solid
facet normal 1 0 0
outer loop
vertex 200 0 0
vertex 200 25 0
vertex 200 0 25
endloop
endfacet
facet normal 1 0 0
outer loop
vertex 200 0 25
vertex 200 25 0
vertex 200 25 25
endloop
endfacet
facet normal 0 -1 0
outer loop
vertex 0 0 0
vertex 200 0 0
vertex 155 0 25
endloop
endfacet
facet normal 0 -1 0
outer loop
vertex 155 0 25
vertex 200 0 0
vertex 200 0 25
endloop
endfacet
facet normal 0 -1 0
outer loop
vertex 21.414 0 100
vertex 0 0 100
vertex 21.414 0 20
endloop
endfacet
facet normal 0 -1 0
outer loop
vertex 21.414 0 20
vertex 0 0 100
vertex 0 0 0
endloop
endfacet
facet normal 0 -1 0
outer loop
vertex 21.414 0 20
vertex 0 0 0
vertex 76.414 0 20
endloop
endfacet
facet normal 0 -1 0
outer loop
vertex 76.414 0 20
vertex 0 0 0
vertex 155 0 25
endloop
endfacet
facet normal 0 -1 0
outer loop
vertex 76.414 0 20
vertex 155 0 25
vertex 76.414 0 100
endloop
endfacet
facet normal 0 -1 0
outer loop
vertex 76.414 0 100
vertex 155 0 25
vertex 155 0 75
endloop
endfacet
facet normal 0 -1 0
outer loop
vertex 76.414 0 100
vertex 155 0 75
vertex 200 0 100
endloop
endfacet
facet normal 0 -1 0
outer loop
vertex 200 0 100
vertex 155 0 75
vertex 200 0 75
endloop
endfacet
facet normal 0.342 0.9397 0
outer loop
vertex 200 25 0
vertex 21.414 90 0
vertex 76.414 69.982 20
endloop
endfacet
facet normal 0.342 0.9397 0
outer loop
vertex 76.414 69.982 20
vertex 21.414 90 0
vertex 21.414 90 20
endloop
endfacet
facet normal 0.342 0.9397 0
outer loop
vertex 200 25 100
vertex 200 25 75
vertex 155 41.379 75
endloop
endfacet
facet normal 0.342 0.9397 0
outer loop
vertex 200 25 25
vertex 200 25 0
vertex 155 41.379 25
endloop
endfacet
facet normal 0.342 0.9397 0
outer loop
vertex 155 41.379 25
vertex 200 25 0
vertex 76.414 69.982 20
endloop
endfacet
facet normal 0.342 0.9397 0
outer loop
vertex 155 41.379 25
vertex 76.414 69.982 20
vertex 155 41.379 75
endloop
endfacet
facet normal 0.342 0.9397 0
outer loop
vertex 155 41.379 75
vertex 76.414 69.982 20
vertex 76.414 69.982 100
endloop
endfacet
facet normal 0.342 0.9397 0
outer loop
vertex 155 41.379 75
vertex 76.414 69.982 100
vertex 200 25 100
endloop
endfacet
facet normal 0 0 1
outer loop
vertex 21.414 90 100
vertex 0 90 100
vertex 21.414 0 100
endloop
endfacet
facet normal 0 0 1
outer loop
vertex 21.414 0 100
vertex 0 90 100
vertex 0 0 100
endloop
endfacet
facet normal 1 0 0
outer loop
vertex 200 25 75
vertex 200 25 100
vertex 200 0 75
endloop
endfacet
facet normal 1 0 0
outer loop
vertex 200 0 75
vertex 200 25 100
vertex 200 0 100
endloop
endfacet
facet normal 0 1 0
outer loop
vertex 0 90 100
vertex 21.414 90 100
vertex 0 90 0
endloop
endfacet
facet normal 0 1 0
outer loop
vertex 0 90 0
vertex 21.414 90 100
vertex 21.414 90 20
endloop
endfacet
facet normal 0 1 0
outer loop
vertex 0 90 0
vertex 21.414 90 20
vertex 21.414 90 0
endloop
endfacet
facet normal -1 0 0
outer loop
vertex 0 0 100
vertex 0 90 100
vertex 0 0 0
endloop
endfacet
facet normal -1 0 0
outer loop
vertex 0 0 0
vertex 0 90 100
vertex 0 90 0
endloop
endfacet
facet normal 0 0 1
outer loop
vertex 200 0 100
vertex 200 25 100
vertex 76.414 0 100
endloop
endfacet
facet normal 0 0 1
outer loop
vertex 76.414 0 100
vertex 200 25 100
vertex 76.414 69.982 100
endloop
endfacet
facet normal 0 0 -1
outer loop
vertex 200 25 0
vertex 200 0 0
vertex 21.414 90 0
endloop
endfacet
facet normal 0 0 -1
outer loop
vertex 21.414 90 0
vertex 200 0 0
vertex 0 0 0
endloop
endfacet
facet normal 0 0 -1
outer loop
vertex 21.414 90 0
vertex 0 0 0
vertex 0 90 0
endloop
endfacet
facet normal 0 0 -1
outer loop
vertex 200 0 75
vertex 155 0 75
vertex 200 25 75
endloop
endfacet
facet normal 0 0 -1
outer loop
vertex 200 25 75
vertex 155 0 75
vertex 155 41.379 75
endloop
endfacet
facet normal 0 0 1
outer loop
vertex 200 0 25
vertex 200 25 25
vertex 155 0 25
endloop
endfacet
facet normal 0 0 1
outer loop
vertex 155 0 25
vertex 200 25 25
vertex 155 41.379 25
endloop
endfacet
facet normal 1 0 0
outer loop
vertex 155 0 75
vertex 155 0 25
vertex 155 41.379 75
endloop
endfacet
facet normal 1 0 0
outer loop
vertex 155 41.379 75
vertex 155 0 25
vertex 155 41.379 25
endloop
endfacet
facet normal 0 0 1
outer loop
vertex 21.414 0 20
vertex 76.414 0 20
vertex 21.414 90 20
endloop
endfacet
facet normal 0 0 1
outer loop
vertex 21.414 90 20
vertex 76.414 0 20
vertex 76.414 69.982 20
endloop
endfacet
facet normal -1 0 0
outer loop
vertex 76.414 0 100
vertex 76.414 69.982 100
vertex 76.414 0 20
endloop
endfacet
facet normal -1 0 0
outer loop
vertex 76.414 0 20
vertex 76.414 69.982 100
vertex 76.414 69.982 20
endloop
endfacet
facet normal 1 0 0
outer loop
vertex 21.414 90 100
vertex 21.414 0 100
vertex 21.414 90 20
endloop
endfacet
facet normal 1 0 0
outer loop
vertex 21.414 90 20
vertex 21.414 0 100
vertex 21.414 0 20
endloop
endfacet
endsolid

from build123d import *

# Parameters (mm, degrees)
SKETCH1_W           = 21.413967735
SKETCH1_H           = 90
BOSS_EXTRUDE1_DEPTH = 100
CUT_EXTRUDE1_REACH  = 243.039
SKETCH2_W           = 55
SKETCH2_H           = 80
SKETCH2_W_2         = 45
SKETCH2_H_2         = 25


with BuildPart() as part:
    # Sketch1 → Boss-Extrude1 (new body)
    with BuildSketch(Plane.XY):
        with Locations((10.706983867, 45)):
            Rectangle(SKETCH1_W, SKETCH1_H)
        Polygon((200, 0), (200, 25), (21.413967735, 90), (21.413967735, 0), align=None)
    extrude(amount=BOSS_EXTRUDE1_DEPTH)

    # Cut-Extrude1: up to this face of the body (flat: up to its plane)
    cut_extrude1_end = Plane(part.part.faces().sort_by_distance((100, 0, 50))[0])
    # Sketch2 → Cut-Extrude1 (cut, up to the picked face)
    with BuildSketch(Plane(origin=(0, 90, 0), x_dir=(1, 0, 0), z_dir=(0, 1, 0)), mode=Mode.PRIVATE) as cut_extrude1_sk1:
        with Locations((48.913967735, -60)):
            Rectangle(SKETCH2_W, SKETCH2_H)
    cut_extrude1_tool1 = split(extrude(cut_extrude1_sk1.sketch, amount=-CUT_EXTRUDE1_REACH, mode=Mode.PRIVATE), bisect_by=cut_extrude1_end, keep=Keep.BOTH, mode=Mode.PRIVATE)
    # Sketch2 → Cut-Extrude1 (cut, up to the picked face)
    with BuildSketch(Plane(origin=(0, 90, 0), x_dir=(1, 0, 0), z_dir=(0, 1, 0)), mode=Mode.PRIVATE) as cut_extrude1_sk2:
        with Locations((177.5, -37.5)):
            Rectangle(SKETCH2_W_2, SKETCH2_H_2)
    cut_extrude1_tool2 = split(extrude(cut_extrude1_sk2.sketch, amount=-CUT_EXTRUDE1_REACH, mode=Mode.PRIVATE), bisect_by=cut_extrude1_end, keep=Keep.BOTH, mode=Mode.PRIVATE)
    # Sketch2 → Cut-Extrude1 (cut, up to the picked face)
    with BuildSketch(Plane(origin=(0, 90, 0), x_dir=(1, 0, 0), z_dir=(0, 1, 0)), mode=Mode.PRIVATE) as cut_extrude1_sk3:
        with Locations((177.5, -62.5)):
            Rectangle(SKETCH2_W_2, SKETCH2_H_2)
    cut_extrude1_tool3 = split(extrude(cut_extrude1_sk3.sketch, amount=-CUT_EXTRUDE1_REACH, mode=Mode.PRIVATE), bisect_by=cut_extrude1_end, keep=Keep.BOTH, mode=Mode.PRIVATE)
    add(cut_extrude1_tool1.solids().sort_by(Axis((48.913968, 90, 60), (0, -1, 0)))[0], mode=Mode.SUBTRACT)
    add(cut_extrude1_tool2.solids().sort_by(Axis((177.5, 90, 37.5), (0, -1, 0)))[0], mode=Mode.SUBTRACT)
    add(cut_extrude1_tool3.solids().sort_by(Axis((177.5, 90, 62.5), (0, -1, 0)))[0], mode=Mode.SUBTRACT)


solid = part.part
